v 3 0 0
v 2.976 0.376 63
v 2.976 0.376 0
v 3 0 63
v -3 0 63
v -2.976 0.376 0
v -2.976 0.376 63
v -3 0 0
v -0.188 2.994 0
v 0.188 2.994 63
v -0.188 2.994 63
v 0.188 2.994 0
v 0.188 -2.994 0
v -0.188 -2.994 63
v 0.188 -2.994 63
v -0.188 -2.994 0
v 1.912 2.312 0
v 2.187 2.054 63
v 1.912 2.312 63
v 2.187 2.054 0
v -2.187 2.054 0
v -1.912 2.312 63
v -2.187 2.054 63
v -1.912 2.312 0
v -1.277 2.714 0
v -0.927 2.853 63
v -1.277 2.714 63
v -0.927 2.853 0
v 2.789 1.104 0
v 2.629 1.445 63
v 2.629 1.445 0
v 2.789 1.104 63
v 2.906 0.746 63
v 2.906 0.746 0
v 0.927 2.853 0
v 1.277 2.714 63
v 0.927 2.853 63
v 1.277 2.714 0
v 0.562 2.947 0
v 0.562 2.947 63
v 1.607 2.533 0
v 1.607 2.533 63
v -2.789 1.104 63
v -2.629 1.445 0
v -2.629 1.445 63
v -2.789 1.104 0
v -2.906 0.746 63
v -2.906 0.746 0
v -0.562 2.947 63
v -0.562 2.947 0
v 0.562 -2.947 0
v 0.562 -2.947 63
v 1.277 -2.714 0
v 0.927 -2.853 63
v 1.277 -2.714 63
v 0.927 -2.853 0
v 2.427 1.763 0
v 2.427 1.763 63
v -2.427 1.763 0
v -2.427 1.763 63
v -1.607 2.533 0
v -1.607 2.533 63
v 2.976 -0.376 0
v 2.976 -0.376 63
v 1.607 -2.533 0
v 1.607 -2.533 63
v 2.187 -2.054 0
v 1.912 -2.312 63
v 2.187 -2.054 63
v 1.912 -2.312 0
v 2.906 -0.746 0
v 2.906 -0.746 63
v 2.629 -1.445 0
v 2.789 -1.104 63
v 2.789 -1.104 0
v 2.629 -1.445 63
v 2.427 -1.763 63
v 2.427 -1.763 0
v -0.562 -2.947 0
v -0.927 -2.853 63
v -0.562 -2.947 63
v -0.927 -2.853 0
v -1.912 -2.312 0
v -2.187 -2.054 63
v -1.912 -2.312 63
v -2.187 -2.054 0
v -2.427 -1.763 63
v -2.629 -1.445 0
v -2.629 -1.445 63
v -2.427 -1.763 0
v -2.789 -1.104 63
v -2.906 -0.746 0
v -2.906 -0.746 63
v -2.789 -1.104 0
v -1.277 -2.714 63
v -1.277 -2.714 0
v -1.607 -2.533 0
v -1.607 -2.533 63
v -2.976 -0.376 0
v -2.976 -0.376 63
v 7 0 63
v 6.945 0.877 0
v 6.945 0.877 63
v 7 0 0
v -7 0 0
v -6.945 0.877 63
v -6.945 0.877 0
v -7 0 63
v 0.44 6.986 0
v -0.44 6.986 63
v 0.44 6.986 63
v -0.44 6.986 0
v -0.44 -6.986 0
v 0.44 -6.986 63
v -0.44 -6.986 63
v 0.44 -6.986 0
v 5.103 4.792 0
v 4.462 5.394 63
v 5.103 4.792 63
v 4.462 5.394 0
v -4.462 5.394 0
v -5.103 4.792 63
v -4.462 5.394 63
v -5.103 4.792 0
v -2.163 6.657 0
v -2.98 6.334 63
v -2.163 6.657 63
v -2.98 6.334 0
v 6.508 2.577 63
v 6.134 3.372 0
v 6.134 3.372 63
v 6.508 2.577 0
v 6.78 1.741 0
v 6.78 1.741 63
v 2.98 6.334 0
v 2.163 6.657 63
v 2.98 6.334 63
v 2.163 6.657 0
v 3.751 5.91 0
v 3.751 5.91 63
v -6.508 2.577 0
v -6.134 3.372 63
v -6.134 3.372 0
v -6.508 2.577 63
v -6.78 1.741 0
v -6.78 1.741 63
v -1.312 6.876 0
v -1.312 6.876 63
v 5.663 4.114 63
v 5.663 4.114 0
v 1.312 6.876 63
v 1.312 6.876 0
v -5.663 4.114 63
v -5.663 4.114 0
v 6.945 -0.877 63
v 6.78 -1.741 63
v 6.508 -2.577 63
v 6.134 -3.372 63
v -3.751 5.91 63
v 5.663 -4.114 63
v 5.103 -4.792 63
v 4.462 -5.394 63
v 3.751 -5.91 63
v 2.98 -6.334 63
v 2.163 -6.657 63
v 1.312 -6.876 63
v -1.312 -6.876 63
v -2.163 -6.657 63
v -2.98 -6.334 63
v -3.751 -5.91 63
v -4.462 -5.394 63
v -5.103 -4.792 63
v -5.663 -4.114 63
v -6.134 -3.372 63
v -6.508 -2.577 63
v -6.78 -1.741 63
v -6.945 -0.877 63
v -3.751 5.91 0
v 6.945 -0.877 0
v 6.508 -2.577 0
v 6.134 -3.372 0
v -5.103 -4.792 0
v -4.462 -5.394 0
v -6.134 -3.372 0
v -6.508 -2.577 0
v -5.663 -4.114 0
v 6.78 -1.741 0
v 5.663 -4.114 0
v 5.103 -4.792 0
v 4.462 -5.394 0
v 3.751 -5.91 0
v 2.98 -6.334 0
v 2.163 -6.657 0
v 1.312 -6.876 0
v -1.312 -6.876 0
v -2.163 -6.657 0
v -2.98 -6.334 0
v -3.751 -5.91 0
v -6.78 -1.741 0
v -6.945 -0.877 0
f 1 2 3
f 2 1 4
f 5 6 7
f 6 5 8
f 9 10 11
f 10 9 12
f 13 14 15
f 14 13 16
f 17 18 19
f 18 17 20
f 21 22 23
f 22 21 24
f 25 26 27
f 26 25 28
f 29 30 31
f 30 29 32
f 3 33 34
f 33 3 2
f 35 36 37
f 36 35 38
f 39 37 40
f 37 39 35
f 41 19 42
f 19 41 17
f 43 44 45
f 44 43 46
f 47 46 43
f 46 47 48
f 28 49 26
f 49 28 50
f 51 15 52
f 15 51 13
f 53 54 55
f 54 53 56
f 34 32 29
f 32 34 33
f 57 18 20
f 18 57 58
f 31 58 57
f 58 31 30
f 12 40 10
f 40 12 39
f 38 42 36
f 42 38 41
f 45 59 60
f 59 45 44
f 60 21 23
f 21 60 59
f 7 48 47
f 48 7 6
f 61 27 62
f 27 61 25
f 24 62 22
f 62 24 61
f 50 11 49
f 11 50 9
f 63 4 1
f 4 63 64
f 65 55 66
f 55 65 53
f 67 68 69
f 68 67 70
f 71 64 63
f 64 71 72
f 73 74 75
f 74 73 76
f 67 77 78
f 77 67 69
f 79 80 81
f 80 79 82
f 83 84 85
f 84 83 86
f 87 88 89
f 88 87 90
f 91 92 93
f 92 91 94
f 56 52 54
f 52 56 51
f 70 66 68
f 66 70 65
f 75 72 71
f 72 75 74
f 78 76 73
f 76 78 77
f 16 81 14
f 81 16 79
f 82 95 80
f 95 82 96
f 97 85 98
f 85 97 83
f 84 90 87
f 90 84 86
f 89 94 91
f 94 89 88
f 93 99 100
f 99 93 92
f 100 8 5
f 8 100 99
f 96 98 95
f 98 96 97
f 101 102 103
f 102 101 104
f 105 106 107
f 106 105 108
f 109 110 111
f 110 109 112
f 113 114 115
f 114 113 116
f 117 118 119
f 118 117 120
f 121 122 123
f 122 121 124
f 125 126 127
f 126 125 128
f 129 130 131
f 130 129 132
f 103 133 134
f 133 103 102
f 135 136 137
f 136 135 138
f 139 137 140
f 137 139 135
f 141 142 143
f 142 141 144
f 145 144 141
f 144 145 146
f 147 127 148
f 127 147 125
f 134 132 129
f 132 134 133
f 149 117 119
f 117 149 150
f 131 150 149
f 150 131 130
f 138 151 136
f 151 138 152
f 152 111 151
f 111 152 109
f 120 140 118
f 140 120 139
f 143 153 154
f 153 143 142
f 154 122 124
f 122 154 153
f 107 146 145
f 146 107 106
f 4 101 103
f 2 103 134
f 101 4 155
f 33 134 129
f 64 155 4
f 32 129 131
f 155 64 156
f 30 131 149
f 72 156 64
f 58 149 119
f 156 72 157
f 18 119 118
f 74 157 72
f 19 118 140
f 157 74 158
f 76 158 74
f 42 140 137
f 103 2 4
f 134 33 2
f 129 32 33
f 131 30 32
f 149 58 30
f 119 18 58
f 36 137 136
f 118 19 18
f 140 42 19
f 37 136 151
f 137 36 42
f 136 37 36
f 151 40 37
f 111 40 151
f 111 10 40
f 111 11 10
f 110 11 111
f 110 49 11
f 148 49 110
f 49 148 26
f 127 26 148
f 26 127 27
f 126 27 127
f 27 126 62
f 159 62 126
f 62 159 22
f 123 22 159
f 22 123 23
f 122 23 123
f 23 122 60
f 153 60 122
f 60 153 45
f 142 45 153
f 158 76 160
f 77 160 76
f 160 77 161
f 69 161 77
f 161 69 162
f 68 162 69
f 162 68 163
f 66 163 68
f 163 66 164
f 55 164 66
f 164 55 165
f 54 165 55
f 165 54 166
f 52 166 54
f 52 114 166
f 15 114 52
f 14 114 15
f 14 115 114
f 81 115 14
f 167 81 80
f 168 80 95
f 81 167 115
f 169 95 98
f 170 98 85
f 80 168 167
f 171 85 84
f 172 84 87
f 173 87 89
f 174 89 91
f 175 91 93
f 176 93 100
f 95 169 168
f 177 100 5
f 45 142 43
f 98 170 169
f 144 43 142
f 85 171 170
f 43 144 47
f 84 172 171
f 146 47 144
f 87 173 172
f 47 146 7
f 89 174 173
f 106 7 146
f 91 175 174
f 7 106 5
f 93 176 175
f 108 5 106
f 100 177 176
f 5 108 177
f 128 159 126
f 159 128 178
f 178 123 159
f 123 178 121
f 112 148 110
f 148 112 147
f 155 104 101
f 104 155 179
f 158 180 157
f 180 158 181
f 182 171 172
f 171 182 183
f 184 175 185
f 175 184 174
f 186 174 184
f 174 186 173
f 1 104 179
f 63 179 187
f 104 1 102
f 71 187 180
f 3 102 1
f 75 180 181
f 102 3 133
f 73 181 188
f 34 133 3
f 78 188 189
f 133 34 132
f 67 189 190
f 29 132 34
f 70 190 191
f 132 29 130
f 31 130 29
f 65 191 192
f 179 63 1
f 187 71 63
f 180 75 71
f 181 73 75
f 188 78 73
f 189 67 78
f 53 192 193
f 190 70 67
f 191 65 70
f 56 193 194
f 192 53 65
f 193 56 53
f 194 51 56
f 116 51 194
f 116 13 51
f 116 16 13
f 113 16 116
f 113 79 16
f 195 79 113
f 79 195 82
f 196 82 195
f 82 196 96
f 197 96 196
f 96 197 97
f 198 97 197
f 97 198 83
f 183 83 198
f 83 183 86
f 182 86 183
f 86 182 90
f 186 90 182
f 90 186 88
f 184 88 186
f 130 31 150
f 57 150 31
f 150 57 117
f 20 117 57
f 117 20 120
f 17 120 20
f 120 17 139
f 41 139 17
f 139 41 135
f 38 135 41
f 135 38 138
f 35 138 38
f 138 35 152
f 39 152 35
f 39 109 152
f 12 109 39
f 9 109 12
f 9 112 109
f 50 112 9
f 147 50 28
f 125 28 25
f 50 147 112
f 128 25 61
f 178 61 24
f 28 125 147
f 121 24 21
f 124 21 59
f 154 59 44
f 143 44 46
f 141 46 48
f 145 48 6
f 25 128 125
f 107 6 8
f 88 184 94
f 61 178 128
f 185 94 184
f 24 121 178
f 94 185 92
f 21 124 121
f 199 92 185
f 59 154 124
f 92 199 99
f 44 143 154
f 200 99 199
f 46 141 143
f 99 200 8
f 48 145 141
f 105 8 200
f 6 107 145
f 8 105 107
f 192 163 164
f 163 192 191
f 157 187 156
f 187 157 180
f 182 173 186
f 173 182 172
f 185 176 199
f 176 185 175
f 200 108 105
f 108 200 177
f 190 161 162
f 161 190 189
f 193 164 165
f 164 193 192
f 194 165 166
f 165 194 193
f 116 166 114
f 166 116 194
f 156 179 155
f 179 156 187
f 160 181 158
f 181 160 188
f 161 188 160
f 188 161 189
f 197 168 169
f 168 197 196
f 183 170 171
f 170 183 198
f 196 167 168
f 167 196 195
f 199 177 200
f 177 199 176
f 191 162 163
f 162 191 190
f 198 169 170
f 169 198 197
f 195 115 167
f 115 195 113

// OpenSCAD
$fn = 50;


difference() {
	union() {
		cylinder(h = 63, r = 7.0000000000);
	}
	union() {
		translate(v = [0.0000000000, 0.0000000000, -100.0000000000]) {
			cylinder(h = 200, r = 3.0000000000);
		}
		translate(v = [0.0000000000, 0.0000000000, -100.0000000000]) {
			cylinder(h = 200, r = 3.0000000000);
		}
		translate(v = [0.0000000000, 0.0000000000, -100.0000000000]) {
			cylinder(h = 200, r = 3.0000000000);
		}
		translate(v = [0.0000000000, 0.0000000000, -100.0000000000]) {
			cylinder(h = 200, r = 3.0000000000);
		}
	}
}
